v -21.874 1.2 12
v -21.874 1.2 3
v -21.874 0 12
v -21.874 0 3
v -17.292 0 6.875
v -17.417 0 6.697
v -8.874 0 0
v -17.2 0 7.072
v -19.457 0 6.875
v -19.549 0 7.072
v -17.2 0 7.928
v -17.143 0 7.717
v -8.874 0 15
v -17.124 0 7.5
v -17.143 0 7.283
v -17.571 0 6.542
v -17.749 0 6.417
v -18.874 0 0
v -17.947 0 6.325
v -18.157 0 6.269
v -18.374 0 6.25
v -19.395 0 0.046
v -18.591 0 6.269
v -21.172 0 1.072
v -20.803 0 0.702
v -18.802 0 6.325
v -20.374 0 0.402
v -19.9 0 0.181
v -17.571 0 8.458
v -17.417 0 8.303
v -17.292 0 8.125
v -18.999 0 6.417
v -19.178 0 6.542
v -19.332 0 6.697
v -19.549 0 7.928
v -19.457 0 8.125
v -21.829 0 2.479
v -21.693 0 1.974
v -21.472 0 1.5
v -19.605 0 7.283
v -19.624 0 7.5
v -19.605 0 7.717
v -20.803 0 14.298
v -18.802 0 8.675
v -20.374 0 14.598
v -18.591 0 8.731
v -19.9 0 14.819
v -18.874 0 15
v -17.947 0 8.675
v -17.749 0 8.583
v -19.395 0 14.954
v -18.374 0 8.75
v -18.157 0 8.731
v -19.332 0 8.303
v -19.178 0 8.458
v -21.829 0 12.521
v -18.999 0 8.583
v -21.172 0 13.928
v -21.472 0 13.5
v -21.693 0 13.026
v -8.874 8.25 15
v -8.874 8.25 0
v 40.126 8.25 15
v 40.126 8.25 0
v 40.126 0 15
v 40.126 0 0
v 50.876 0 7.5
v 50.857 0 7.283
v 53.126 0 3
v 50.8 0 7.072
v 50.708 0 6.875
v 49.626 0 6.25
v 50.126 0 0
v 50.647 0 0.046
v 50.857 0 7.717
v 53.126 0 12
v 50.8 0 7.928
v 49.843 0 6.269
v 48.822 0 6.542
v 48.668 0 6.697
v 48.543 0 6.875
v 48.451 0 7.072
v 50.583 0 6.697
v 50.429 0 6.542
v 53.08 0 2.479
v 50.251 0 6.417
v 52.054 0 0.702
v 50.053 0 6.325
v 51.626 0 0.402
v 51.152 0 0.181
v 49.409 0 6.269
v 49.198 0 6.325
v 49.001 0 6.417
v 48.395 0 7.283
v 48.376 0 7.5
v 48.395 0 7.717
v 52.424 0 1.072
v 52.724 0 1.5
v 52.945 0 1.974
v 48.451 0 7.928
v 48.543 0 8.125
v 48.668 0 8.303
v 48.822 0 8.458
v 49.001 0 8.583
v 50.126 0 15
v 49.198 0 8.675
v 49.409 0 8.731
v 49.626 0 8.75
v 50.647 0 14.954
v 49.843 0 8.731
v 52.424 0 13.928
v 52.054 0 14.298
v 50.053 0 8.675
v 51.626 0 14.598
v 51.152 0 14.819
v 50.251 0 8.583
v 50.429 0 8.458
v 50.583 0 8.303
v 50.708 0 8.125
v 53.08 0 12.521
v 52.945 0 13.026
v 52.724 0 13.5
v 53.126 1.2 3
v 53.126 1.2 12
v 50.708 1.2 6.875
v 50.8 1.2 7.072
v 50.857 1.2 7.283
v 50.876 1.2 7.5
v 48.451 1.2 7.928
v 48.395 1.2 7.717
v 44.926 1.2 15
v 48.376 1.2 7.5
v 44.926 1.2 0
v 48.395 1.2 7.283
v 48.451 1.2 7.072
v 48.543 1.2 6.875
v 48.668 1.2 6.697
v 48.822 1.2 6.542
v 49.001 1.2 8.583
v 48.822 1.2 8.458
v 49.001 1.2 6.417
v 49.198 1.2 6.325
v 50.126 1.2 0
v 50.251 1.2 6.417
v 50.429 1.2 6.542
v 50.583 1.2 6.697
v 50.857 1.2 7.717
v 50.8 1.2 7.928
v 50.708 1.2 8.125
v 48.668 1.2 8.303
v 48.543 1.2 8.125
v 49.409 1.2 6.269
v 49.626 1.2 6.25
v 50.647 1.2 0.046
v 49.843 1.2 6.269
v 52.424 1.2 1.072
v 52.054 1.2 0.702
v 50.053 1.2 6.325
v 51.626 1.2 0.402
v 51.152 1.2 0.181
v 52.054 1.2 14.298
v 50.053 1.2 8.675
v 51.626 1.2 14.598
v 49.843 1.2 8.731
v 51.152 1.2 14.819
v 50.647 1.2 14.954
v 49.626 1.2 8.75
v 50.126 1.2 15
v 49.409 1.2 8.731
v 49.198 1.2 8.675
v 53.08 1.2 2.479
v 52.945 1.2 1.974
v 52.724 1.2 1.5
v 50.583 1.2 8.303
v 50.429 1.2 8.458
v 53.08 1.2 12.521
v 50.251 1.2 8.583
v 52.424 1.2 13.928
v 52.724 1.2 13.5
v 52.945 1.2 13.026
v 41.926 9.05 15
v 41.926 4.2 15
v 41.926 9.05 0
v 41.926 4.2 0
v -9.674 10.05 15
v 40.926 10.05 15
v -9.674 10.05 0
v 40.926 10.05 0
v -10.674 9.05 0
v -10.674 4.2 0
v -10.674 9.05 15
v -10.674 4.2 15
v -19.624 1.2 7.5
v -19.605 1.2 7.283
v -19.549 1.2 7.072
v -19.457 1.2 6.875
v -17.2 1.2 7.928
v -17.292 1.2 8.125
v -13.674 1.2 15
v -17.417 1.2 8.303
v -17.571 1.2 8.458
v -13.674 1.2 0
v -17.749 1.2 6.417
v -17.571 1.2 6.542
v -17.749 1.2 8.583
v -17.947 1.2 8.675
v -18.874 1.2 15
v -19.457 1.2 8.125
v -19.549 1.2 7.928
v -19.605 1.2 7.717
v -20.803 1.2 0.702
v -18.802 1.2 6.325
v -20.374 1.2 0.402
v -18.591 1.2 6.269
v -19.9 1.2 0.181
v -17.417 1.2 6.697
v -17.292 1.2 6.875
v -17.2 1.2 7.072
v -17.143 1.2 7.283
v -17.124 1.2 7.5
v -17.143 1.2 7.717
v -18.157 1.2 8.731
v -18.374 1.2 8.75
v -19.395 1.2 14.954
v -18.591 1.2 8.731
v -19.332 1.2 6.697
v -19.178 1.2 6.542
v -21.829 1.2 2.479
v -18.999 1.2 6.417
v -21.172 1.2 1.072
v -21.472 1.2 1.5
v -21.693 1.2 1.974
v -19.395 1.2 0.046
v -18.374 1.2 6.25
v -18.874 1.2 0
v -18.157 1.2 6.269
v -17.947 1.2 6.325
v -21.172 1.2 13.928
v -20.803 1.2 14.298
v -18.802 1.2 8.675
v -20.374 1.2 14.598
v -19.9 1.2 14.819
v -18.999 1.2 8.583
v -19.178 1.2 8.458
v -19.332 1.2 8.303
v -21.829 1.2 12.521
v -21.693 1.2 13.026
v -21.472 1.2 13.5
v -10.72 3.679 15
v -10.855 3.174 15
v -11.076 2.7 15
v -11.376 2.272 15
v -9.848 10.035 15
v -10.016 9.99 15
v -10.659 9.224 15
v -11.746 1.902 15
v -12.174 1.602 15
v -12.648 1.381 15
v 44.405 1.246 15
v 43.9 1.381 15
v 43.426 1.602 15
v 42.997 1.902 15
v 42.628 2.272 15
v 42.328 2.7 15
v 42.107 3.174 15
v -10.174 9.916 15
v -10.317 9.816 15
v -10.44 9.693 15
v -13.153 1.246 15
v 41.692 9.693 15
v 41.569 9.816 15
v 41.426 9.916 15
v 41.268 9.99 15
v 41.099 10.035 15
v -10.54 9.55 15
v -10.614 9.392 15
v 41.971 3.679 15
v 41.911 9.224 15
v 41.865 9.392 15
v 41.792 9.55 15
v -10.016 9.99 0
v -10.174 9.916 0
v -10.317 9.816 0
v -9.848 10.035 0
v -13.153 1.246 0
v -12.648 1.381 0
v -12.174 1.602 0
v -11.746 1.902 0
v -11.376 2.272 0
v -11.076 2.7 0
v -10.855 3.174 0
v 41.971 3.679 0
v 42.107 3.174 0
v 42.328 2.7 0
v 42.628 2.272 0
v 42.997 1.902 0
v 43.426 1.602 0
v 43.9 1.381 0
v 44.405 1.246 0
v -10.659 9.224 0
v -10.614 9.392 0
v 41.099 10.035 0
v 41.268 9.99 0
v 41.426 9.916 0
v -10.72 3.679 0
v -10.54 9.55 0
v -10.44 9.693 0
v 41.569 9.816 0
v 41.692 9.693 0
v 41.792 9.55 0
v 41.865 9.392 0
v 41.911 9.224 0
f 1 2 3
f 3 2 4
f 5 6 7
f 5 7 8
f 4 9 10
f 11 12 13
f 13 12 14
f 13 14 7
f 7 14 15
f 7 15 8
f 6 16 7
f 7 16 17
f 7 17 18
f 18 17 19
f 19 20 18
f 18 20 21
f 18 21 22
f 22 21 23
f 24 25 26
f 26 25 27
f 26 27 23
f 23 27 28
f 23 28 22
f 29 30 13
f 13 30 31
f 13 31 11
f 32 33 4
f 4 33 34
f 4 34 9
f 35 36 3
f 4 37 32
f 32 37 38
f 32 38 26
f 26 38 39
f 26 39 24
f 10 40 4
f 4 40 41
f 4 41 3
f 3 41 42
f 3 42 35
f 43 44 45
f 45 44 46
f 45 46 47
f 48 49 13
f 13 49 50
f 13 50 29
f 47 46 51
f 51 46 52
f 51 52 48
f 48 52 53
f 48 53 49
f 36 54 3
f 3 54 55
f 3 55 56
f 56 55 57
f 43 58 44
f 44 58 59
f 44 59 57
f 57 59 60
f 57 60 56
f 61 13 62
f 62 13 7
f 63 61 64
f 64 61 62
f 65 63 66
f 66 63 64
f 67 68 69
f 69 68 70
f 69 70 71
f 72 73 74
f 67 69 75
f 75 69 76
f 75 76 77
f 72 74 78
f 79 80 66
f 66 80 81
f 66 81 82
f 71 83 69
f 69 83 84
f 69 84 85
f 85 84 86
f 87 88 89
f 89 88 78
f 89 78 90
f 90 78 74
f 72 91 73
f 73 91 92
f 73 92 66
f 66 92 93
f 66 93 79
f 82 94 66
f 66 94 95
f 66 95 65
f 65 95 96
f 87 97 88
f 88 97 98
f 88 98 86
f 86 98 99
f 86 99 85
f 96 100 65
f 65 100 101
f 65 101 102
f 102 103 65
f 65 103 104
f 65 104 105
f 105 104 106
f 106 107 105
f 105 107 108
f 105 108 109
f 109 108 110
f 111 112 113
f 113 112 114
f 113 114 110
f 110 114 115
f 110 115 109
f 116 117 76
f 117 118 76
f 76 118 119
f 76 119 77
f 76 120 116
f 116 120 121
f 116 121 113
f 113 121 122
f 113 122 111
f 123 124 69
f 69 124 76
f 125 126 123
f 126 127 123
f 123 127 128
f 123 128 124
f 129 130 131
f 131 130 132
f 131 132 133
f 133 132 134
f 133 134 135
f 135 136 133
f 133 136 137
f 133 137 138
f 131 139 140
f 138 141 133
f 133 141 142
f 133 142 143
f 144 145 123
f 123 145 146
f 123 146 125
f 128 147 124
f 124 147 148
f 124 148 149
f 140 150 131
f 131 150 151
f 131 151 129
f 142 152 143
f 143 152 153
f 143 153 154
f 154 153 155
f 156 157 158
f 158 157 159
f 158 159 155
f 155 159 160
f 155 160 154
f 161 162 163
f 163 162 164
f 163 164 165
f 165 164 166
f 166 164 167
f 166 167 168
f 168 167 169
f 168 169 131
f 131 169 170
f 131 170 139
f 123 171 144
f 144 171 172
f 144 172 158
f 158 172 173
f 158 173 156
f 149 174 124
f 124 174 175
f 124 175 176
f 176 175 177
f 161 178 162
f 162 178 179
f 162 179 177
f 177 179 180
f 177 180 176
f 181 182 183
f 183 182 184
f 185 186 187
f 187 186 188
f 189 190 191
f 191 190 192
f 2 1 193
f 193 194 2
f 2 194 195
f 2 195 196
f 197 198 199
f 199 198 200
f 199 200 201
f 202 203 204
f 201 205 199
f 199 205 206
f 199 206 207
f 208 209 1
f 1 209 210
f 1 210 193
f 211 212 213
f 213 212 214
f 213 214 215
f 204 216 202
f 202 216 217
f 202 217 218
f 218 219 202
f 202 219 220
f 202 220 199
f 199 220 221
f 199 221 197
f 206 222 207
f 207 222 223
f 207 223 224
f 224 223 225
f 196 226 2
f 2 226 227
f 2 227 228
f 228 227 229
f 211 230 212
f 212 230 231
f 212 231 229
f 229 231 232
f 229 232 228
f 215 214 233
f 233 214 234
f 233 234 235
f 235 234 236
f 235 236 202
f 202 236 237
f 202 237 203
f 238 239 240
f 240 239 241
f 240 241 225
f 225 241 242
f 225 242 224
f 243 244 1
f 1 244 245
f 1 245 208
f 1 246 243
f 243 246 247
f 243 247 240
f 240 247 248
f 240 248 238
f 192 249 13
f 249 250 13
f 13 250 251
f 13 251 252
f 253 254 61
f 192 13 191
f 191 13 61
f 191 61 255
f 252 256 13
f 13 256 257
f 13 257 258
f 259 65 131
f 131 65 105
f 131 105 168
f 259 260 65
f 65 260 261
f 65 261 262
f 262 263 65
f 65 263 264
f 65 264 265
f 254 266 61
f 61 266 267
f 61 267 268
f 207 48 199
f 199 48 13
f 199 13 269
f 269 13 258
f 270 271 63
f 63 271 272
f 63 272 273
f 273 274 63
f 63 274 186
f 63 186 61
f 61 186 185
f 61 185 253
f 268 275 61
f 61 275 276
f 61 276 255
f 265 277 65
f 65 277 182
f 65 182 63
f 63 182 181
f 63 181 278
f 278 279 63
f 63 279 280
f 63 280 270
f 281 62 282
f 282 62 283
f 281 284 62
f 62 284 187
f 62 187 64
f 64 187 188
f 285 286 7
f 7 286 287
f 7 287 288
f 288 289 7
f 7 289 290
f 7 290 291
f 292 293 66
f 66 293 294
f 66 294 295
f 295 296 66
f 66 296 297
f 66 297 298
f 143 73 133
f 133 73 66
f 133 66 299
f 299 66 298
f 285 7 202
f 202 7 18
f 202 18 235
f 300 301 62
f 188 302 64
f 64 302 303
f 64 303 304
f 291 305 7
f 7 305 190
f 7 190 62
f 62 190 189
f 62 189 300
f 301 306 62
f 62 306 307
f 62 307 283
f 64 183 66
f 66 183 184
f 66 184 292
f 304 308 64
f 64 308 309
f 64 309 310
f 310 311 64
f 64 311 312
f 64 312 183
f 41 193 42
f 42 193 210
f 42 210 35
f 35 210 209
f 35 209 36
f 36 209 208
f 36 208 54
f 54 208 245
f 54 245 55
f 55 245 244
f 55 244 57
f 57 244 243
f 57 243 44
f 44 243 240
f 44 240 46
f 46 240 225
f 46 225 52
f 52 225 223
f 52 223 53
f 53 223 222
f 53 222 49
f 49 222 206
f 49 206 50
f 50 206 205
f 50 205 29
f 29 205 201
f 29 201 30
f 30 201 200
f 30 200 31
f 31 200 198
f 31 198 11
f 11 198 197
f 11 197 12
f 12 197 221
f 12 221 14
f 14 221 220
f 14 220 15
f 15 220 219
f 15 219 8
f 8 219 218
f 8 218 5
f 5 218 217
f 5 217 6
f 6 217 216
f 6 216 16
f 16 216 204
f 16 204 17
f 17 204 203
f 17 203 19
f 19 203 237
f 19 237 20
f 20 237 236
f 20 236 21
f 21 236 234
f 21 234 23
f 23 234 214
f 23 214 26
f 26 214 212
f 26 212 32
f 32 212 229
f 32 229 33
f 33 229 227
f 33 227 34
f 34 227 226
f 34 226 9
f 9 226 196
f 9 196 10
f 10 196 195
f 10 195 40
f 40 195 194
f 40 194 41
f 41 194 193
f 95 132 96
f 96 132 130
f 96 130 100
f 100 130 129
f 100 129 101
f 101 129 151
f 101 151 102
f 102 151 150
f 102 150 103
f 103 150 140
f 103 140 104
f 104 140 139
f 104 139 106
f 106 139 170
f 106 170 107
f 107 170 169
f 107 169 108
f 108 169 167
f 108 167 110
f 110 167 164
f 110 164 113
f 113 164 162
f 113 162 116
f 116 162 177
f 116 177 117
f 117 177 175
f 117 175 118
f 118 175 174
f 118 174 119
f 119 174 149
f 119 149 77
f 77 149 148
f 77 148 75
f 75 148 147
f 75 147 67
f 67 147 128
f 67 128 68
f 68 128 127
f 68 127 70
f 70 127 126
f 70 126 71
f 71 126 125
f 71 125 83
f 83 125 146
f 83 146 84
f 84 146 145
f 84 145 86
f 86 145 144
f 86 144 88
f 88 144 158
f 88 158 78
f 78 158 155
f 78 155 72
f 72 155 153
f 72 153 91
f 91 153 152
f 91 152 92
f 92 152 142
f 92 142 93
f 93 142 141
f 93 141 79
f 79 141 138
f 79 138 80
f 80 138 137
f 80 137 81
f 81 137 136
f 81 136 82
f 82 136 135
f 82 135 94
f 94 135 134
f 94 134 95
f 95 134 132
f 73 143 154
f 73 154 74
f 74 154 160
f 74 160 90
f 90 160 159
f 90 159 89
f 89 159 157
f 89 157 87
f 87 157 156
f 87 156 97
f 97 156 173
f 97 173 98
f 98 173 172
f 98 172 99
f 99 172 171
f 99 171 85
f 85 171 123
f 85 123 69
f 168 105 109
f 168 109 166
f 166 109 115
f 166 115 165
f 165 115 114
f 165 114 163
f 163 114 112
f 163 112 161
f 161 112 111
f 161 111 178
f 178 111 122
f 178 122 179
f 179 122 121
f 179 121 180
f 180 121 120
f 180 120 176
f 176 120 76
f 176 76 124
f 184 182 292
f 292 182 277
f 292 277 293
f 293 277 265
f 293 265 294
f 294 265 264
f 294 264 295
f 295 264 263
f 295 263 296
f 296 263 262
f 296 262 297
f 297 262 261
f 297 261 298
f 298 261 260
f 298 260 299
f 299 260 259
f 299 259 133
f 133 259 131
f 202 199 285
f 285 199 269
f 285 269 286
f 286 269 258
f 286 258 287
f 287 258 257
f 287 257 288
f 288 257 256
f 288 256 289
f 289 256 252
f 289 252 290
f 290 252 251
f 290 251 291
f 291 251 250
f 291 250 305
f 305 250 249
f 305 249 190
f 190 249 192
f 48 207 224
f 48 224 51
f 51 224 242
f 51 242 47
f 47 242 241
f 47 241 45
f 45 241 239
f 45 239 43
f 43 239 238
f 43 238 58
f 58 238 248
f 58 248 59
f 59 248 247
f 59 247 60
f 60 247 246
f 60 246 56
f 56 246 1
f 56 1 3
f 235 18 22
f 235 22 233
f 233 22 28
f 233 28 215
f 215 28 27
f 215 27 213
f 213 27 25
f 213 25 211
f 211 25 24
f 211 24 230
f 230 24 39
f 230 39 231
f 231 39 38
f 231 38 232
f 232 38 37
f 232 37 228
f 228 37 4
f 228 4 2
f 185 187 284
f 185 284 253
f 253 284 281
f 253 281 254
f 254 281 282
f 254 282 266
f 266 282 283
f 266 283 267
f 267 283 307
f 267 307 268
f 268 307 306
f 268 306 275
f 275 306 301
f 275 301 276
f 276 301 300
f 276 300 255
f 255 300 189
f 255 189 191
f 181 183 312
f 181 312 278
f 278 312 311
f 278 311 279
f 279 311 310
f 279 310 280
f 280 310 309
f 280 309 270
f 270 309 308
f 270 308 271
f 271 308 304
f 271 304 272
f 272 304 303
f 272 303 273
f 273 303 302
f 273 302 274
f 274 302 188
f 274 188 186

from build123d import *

# Parameters (mm, degrees)
BOSS_EXTRUDE1_DEPTH = 15
CUT_EXTRUDE1_REACH  = 57.908
SKETCH2_R           = 1.25
FILLET1_R           = 3
FILLET2_R           = 1


with BuildPart() as part:
    # Sketch1 → Boss-Extrude1 (new body)
    with BuildSketch(Plane.XY):
        Polygon((-21.874229857, 0), (-8.874229857, 0), (-8.874229857, 8.25), (40.125770143, 8.25), (40.125770143, 0), (53.125770143, 0), (53.125770143, 1.2), (41.925770143, 1.2), (41.925770143, 10.05), (-10.674229857, 10.05), (-10.674229857, 1.2), (-21.874229857, 1.2), align=None)
    extrude(amount=BOSS_EXTRUDE1_DEPTH)

    # Sketch2 → Cut-Extrude1 (cut, up to next)
    with BuildSketch(Plane(origin=(0, 1.2, 0), x_dir=(1, 0, 0), z_dir=(0, 1, 0)), mode=Mode.PRIVATE) as cut_extrude1_sk1:
        with Locations(Location((-18.374229857, -7.5, 0), (0, 0, 180))):
            Circle(SKETCH2_R)
    cut_extrude1_tool1 = extrude(cut_extrude1_sk1.sketch, amount=-CUT_EXTRUDE1_REACH, mode=Mode.PRIVATE) & part.part
    # Sketch2 → Cut-Extrude1 (cut, up to next)
    with BuildSketch(Plane(origin=(0, 1.2, 0), x_dir=(1, 0, 0), z_dir=(0, 1, 0)), mode=Mode.PRIVATE) as cut_extrude1_sk2:
        with Locations(Location((49.625770143, -7.5, 0), (0, 0, 180))):
            Circle(SKETCH2_R)
    cut_extrude1_tool2 = extrude(cut_extrude1_sk2.sketch, amount=-CUT_EXTRUDE1_REACH, mode=Mode.PRIVATE) & part.part
    add(cut_extrude1_tool1.solids().sort_by_distance((-18.37423, 1.2, 7.5))[0], mode=Mode.SUBTRACT)
    add(cut_extrude1_tool2.solids().sort_by_distance((49.62577, 1.2, 7.5))[0], mode=Mode.SUBTRACT)

    # Fillet1
    fillet1_edges = [part.edges().sort_by_distance(p)[0] for p in [
        (53.125770143, 0.6, 0),
        (-21.874229857, 0.6, 0),
        (-10.674229857, 1.2, 7.5),
        (41.925770143, 1.2, 7.5),
        (53.125770143, 0.6, 15),
        (-21.874229857, 0.6, 15),
    ]]
    fillet(fillet1_edges, radius=FILLET1_R)

    # Fillet2
    fillet2_edges = [part.edges().sort_by_distance(p)[0] for p in [
        (-10.674229857, 10.05, 7.5),
        (41.925770143, 10.05, 7.5),
    ]]
    fillet(fillet2_edges, radius=FILLET2_R)


solid = part.part
